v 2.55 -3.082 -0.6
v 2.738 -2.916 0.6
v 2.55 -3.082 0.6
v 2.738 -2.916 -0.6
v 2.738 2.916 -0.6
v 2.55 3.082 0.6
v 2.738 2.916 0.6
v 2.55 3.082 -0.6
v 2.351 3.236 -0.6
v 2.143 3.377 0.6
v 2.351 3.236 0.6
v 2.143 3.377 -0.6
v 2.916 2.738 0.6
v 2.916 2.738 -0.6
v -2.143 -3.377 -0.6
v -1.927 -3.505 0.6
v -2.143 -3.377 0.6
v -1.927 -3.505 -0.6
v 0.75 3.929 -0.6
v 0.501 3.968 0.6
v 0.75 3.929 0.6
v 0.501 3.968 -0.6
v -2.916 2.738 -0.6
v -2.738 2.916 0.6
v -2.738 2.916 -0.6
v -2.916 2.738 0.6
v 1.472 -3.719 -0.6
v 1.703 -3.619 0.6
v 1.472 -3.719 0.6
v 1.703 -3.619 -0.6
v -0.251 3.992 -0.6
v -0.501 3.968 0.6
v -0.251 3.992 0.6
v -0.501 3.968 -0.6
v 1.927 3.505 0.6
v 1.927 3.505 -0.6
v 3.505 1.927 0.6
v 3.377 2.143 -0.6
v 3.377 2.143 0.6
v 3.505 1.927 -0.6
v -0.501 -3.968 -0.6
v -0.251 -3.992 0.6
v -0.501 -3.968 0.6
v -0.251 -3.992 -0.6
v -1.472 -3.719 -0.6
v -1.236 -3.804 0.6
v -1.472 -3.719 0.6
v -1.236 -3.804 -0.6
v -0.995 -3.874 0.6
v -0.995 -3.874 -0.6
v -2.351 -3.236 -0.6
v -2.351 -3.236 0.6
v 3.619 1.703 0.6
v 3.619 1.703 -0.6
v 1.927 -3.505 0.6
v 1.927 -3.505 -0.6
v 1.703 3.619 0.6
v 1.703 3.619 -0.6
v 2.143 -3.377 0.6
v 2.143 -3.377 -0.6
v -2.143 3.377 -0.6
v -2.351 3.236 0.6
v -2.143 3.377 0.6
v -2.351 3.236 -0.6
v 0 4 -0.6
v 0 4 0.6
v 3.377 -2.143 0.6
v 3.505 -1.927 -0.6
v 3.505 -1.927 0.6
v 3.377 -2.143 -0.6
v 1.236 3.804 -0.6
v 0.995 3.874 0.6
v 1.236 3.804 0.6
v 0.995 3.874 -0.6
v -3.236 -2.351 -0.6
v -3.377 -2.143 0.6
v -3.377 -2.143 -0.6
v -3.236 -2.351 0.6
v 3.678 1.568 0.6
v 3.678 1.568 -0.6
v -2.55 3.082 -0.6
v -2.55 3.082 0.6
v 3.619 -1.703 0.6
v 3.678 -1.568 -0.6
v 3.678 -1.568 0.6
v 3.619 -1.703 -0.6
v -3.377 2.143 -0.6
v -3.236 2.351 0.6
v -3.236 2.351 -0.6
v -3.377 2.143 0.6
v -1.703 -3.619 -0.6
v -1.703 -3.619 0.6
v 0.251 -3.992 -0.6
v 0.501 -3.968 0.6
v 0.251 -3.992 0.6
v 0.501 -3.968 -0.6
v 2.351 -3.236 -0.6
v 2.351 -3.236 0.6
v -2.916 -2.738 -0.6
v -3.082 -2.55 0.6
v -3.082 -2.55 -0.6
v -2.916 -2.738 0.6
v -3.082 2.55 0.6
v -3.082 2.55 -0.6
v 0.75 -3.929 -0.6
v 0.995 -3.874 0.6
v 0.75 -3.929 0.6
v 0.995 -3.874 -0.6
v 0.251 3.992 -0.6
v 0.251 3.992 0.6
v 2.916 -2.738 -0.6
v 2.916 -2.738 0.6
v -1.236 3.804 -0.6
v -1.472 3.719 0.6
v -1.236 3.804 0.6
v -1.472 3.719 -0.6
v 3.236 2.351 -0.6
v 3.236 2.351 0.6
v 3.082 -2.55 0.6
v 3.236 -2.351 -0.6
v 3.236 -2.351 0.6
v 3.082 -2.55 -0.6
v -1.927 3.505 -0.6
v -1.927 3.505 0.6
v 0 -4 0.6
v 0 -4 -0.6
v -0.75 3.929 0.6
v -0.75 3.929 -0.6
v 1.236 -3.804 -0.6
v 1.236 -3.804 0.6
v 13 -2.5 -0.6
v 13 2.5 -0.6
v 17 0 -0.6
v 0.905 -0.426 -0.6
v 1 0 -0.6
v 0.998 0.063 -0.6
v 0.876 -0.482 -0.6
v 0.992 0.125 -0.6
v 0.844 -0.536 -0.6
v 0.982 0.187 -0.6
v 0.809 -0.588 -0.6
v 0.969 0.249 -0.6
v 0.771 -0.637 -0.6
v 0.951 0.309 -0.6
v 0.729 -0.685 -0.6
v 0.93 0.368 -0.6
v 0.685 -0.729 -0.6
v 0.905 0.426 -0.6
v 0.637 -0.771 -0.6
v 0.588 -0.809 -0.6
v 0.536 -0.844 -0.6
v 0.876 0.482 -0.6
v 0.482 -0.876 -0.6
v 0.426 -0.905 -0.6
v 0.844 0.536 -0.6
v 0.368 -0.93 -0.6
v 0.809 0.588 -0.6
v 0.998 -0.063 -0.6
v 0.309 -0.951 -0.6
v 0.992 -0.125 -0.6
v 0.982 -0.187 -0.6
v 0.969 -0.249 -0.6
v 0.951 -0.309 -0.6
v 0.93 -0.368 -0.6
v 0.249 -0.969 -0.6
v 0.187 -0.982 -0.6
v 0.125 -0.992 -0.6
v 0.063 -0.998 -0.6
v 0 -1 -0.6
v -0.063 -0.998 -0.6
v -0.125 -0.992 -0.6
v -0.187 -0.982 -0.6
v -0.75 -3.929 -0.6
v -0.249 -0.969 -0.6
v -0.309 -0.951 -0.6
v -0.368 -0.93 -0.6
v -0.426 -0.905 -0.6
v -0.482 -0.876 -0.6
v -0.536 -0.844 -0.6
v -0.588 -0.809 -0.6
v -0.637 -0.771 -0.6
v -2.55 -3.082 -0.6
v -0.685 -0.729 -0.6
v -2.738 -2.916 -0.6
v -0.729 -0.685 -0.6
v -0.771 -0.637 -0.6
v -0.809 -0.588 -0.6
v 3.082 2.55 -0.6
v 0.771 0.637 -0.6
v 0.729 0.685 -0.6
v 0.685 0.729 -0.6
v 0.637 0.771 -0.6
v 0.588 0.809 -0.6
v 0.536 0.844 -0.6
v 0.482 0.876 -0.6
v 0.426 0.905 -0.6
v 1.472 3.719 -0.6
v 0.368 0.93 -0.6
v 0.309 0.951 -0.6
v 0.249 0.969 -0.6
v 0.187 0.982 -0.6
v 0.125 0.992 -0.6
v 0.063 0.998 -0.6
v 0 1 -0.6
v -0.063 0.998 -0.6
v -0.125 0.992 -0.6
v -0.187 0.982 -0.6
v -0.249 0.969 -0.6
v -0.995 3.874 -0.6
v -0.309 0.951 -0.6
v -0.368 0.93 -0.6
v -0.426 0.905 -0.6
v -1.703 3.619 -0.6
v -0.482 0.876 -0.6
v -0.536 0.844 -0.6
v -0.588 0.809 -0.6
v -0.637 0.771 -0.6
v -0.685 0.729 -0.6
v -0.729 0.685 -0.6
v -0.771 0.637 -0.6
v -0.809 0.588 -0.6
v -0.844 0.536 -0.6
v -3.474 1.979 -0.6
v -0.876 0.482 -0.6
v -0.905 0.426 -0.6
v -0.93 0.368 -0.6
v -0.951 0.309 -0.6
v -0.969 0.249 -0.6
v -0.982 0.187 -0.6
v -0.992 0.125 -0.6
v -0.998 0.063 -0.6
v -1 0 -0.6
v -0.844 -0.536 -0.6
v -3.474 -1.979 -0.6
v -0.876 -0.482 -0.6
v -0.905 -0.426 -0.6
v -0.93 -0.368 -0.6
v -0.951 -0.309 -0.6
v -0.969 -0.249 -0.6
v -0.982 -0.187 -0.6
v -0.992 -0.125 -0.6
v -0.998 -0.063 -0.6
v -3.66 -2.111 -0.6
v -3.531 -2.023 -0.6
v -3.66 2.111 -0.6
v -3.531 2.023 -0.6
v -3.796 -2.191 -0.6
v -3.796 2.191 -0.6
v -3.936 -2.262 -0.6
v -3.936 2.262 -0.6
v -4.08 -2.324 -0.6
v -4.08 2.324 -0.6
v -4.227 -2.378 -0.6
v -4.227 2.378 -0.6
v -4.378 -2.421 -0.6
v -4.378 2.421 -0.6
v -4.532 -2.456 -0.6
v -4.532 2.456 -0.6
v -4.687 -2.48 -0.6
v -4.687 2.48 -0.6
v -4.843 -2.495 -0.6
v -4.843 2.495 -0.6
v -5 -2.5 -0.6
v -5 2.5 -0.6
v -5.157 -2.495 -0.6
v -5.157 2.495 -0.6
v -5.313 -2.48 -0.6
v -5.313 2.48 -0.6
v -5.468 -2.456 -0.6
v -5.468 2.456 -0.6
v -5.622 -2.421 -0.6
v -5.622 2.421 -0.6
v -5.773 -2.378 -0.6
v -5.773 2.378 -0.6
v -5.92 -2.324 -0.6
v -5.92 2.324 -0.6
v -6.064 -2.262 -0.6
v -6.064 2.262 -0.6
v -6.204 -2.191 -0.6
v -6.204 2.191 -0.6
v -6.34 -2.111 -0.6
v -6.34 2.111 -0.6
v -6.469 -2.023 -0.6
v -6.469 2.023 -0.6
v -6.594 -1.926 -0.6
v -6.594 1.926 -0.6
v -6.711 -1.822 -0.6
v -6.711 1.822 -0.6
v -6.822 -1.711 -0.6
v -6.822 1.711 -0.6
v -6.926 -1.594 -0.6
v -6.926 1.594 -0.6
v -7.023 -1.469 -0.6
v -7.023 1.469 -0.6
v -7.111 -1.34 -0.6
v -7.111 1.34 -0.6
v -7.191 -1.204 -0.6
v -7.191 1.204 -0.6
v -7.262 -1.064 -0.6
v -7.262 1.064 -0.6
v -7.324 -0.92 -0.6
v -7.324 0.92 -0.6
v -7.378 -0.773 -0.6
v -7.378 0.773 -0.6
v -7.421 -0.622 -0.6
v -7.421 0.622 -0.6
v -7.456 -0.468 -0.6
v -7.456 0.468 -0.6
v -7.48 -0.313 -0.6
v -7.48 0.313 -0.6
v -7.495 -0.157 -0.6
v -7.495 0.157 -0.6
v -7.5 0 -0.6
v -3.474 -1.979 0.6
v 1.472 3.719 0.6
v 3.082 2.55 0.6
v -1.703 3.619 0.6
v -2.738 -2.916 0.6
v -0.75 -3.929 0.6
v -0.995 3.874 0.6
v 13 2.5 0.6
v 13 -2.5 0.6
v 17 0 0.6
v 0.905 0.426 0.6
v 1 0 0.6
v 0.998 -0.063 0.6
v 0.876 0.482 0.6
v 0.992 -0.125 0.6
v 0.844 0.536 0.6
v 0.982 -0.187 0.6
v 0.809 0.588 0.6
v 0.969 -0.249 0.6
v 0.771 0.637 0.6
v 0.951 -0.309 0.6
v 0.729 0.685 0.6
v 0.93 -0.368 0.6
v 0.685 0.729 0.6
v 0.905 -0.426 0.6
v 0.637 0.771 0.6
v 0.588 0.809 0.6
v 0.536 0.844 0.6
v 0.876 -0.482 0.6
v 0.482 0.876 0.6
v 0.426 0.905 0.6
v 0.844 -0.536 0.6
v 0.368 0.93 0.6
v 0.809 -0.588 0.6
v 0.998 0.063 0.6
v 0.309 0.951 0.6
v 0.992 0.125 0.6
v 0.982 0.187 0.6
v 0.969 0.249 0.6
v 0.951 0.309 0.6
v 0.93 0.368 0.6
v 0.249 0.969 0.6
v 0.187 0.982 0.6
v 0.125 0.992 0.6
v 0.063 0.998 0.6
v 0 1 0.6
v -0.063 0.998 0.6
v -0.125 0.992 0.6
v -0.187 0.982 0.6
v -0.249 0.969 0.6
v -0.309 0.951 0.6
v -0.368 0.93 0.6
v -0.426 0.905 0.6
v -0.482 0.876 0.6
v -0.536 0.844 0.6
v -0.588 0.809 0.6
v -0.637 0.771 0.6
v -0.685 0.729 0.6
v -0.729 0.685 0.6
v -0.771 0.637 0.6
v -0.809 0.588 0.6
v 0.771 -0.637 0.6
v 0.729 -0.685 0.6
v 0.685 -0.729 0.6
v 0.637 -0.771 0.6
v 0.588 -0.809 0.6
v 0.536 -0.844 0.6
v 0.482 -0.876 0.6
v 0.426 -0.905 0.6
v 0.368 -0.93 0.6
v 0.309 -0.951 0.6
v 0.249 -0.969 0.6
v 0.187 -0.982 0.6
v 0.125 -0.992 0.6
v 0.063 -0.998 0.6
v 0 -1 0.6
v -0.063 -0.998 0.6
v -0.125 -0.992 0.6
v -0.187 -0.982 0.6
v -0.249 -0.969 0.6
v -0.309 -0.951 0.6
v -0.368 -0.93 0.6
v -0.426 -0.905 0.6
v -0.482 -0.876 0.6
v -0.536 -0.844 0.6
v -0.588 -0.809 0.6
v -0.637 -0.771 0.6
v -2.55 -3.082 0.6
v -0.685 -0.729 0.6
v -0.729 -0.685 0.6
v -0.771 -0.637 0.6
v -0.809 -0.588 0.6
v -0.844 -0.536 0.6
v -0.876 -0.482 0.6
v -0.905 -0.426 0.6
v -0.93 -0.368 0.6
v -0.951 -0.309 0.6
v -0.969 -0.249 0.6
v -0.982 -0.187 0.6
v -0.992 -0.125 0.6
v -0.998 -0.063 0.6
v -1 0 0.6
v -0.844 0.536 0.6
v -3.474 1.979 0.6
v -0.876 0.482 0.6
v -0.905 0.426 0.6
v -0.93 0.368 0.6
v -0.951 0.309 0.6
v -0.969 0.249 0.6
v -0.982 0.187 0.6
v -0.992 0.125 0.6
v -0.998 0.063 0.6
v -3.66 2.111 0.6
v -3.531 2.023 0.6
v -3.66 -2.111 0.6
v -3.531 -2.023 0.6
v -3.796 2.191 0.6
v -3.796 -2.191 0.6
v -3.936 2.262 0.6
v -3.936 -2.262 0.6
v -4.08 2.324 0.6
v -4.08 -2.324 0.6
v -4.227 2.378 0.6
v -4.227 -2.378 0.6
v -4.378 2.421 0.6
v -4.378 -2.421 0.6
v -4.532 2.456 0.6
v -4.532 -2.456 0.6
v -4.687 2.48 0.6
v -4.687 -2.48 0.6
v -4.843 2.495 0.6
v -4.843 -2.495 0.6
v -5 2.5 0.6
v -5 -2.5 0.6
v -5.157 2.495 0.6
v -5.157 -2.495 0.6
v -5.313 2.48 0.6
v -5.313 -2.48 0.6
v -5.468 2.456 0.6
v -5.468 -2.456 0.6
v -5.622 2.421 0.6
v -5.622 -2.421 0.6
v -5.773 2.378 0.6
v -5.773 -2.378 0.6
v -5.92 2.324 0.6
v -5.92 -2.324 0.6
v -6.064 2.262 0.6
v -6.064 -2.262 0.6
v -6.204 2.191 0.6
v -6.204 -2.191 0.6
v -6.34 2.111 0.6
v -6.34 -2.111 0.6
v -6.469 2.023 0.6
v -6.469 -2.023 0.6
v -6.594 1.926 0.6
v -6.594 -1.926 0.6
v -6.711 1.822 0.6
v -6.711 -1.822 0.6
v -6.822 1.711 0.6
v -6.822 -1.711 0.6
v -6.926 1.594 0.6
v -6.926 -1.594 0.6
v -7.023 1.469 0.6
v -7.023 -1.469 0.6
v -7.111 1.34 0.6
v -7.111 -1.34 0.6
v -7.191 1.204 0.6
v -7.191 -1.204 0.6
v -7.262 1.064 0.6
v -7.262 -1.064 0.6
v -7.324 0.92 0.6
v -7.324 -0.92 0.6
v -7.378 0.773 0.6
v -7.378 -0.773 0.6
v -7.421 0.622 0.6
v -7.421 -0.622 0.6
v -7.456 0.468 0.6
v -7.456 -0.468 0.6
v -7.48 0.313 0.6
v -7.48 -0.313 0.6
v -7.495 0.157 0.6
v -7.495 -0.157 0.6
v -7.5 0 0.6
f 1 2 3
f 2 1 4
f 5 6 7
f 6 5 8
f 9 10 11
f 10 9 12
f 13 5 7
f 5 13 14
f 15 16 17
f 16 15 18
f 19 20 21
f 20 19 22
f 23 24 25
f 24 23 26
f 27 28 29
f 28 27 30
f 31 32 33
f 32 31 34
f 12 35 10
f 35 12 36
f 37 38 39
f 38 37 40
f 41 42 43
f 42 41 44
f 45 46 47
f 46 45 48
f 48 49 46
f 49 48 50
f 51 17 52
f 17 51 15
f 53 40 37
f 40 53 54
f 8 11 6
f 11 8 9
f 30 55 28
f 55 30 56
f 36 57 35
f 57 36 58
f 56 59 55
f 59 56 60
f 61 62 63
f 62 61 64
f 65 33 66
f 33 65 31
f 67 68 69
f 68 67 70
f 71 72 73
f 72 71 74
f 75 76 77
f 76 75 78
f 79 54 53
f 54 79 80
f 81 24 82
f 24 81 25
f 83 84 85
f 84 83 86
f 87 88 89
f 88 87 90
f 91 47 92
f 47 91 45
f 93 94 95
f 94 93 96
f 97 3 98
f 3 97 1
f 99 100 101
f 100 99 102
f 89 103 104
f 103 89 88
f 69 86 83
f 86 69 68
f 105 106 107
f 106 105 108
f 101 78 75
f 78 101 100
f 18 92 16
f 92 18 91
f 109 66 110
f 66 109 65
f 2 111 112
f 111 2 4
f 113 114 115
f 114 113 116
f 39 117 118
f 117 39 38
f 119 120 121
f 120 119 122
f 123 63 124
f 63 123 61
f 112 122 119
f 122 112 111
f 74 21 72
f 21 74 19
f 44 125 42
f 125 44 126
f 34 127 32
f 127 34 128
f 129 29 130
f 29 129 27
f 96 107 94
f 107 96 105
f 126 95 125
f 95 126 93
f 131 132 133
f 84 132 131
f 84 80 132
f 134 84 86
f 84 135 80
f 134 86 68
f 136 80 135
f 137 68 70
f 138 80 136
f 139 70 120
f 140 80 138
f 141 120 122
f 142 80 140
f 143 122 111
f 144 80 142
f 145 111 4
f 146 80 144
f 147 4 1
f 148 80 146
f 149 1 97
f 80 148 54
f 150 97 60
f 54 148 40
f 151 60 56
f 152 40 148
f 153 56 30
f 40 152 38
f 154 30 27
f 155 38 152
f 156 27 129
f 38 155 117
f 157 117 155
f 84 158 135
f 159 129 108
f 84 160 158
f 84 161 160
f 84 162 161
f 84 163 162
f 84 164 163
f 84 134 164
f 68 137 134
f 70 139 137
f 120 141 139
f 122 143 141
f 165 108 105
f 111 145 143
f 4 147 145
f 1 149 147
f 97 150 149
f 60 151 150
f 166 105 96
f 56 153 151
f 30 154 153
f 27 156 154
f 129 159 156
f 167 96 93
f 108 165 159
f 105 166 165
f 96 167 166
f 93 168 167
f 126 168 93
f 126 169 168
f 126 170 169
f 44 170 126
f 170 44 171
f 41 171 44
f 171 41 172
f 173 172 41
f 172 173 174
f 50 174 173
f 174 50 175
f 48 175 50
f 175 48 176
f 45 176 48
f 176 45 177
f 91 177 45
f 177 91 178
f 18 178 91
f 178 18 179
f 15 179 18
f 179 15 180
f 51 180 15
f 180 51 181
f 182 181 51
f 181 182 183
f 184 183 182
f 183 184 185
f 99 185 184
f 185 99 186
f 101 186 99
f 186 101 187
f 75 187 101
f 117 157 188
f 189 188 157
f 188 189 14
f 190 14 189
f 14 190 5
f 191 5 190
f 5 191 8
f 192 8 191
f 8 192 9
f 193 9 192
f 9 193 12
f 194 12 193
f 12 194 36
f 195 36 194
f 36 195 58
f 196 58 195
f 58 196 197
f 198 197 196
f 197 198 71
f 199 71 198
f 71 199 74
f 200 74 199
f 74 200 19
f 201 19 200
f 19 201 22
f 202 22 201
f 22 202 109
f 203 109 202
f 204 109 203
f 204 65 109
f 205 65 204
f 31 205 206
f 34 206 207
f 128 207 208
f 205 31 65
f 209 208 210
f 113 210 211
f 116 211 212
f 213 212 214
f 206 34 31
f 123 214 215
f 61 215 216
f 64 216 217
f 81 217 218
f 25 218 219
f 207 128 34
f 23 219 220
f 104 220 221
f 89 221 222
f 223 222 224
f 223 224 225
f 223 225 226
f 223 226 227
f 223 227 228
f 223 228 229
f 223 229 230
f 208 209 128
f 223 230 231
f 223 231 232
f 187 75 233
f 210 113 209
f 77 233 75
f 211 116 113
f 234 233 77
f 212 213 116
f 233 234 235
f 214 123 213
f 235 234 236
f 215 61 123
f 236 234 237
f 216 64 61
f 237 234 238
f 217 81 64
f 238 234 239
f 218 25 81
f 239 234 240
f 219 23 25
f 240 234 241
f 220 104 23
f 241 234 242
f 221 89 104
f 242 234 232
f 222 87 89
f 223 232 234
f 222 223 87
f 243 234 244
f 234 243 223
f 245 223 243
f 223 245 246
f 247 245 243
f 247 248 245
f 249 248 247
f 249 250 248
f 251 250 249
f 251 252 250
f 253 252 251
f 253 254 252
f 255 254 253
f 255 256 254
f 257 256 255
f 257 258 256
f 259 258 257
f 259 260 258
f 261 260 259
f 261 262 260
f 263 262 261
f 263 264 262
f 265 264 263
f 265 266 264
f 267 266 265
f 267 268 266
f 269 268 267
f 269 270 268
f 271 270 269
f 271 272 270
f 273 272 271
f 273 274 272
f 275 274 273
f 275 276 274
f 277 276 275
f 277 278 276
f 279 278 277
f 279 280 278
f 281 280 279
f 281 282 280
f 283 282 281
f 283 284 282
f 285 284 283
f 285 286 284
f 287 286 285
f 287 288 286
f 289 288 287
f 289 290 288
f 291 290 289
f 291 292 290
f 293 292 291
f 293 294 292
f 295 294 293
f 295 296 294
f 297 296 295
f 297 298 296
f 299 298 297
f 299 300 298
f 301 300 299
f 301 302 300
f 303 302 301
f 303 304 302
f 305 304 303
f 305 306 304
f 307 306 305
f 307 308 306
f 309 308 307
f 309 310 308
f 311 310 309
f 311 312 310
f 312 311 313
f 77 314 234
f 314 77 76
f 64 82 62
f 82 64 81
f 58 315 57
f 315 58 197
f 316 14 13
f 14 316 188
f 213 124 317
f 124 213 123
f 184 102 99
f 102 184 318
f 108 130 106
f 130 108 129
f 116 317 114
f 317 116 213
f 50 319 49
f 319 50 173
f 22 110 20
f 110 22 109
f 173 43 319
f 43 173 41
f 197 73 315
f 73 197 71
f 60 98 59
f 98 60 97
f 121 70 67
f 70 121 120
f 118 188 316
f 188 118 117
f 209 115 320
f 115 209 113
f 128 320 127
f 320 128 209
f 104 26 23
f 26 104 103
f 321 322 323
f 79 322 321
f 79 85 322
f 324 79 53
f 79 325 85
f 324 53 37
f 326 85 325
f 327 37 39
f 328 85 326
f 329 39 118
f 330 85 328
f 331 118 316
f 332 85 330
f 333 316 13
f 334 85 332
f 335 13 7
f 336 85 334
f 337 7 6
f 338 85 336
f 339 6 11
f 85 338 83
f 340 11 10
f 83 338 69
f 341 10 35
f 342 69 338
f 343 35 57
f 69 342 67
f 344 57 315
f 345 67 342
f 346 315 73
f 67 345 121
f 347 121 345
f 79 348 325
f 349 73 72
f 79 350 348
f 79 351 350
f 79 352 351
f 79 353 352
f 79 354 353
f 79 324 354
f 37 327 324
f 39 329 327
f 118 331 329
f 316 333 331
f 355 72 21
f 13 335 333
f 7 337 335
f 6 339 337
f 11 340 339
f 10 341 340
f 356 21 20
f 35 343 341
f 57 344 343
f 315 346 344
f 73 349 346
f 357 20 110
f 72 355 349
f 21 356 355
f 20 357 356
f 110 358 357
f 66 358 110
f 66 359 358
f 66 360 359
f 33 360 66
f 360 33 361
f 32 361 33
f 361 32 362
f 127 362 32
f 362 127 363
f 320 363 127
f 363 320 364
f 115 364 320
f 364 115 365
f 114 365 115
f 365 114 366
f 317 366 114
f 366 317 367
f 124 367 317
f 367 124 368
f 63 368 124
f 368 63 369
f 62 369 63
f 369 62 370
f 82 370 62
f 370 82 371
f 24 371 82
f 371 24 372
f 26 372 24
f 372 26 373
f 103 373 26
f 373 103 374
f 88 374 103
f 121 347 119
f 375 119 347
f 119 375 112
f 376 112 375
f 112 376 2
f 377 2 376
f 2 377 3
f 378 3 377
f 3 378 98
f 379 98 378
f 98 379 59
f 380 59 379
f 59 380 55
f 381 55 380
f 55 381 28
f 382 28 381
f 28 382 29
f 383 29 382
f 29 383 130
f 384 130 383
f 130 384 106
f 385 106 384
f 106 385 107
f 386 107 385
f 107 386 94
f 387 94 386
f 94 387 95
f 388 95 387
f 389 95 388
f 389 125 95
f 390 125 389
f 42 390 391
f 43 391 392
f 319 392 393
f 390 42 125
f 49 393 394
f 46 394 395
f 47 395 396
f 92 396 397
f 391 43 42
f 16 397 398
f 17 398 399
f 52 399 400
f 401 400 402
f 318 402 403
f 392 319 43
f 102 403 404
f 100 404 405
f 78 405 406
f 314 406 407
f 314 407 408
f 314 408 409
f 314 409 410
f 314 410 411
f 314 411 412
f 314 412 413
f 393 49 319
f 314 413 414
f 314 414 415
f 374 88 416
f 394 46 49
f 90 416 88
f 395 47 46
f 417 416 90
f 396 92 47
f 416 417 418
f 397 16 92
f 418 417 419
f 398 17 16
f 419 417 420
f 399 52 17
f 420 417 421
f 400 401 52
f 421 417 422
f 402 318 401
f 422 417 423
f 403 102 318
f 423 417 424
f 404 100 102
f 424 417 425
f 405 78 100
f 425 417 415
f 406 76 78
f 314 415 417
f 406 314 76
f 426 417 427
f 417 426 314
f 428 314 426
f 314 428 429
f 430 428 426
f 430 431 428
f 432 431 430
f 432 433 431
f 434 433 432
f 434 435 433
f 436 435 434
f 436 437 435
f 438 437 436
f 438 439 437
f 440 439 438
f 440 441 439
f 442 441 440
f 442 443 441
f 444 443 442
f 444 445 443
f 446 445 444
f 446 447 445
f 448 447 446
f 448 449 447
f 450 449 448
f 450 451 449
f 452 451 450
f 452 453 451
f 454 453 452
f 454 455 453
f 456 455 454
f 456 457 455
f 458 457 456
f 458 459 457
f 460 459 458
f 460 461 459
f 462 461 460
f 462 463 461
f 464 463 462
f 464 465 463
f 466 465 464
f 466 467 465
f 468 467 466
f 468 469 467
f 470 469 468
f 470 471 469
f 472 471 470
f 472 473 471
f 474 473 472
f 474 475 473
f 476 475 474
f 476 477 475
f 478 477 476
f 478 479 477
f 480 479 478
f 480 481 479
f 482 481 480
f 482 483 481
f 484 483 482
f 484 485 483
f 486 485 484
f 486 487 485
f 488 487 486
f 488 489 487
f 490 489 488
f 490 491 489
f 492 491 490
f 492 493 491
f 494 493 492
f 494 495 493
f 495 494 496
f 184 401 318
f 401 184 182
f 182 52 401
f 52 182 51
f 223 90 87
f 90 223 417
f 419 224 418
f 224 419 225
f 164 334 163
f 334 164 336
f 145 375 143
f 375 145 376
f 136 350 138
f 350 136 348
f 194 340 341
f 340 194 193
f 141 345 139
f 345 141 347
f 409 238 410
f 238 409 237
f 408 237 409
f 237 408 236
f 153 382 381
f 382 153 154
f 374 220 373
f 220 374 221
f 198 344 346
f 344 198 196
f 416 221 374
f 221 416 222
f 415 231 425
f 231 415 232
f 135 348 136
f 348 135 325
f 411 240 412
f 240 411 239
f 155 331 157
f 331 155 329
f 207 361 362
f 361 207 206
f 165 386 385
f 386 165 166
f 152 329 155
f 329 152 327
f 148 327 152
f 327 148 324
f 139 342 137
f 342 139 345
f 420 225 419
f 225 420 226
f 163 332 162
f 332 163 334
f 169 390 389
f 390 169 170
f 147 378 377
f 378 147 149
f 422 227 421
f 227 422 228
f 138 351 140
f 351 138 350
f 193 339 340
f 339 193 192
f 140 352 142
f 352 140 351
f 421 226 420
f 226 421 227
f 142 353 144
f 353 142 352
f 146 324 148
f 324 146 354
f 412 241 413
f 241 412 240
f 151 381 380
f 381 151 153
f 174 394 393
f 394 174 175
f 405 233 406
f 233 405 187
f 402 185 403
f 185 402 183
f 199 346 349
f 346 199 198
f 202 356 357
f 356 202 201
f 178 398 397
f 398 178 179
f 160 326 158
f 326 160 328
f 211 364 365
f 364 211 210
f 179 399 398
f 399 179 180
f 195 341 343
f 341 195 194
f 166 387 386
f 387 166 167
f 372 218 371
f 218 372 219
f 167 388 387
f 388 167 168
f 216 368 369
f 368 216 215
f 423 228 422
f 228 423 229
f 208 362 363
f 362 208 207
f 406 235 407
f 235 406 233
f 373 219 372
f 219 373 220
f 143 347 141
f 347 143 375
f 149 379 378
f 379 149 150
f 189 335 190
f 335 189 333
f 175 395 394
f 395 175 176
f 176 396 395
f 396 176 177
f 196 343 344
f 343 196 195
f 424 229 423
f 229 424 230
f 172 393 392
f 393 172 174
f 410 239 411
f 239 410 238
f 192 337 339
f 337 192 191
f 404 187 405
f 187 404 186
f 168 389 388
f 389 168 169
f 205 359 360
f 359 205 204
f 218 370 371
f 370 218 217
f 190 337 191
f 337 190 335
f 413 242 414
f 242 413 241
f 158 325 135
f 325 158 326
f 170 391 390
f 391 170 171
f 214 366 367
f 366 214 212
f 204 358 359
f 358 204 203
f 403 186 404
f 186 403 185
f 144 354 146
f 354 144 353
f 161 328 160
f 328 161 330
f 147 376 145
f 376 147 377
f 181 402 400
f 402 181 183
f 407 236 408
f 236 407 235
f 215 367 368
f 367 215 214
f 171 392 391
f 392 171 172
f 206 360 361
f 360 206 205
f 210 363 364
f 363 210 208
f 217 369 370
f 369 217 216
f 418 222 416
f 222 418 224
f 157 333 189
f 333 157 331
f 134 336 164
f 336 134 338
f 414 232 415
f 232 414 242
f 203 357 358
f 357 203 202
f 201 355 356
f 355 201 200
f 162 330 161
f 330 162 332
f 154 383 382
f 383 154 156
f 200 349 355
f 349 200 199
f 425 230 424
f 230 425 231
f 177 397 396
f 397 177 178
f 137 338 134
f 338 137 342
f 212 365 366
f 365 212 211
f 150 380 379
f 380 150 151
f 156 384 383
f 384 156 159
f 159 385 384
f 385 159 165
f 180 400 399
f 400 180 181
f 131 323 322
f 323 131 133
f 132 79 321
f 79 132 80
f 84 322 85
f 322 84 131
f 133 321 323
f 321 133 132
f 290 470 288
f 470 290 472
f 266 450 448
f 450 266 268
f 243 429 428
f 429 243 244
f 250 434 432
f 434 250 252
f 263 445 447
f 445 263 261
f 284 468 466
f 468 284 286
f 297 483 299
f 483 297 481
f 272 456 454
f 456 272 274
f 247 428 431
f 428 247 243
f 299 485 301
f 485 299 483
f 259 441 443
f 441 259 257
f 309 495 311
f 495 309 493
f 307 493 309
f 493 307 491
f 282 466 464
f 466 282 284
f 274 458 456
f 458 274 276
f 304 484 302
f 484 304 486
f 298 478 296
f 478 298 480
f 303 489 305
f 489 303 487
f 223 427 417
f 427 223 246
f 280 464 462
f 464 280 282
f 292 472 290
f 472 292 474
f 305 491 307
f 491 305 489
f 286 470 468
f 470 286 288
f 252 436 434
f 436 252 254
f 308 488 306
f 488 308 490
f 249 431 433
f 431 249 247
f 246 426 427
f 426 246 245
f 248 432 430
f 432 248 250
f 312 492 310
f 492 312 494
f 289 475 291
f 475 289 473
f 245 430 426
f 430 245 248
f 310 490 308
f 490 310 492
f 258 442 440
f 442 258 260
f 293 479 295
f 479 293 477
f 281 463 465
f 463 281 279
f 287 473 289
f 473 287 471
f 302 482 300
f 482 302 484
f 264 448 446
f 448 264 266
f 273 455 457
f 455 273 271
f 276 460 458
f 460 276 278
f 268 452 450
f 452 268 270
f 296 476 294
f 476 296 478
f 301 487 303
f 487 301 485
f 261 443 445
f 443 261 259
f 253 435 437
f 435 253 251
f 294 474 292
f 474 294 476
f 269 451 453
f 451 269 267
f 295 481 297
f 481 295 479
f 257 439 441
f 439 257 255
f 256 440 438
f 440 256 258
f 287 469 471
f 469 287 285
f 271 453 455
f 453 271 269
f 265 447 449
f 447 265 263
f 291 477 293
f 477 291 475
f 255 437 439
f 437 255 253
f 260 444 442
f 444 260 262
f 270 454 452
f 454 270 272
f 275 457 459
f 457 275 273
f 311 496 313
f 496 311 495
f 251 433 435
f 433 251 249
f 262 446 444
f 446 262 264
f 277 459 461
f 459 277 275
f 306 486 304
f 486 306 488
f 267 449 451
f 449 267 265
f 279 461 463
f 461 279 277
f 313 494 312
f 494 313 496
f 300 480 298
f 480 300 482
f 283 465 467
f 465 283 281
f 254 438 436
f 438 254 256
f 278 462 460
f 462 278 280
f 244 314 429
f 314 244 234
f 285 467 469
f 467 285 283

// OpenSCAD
$fn = 100;

height=1.2;

difference() {
    union() {

        // Short 1000-ft pointer
        // Broad near the tip, narrowing toward the hub
        linear_extrude(height = height, center = true)
            polygon([
                [ 3, -1.5],
                [13, -2.5],
                [17,  0],
                [13,  2.5],
                [ 3,  1.5]
            ]);

        // Hub
        difference() {
            cylinder(d = 8, h = height, center = true);
            cylinder(d = 2, h = height, center = true);
        }

        // Small counterweight on the opposite side
        translate([-5, 0, 0])
            cylinder(d = 5, h = height, center = true);
    }

    // Hub hole
    //cylinder(d = 1, h = 5, center = true);
}
